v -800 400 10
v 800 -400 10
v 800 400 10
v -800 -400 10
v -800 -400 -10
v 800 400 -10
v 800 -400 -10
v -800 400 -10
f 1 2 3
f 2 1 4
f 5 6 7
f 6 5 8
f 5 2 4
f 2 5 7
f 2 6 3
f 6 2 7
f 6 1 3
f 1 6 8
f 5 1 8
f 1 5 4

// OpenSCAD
/** table-plate 160x80, 2cm thickness, millimeters, centered at origin */

cube( size=[1600, 800, 20], center=true );
